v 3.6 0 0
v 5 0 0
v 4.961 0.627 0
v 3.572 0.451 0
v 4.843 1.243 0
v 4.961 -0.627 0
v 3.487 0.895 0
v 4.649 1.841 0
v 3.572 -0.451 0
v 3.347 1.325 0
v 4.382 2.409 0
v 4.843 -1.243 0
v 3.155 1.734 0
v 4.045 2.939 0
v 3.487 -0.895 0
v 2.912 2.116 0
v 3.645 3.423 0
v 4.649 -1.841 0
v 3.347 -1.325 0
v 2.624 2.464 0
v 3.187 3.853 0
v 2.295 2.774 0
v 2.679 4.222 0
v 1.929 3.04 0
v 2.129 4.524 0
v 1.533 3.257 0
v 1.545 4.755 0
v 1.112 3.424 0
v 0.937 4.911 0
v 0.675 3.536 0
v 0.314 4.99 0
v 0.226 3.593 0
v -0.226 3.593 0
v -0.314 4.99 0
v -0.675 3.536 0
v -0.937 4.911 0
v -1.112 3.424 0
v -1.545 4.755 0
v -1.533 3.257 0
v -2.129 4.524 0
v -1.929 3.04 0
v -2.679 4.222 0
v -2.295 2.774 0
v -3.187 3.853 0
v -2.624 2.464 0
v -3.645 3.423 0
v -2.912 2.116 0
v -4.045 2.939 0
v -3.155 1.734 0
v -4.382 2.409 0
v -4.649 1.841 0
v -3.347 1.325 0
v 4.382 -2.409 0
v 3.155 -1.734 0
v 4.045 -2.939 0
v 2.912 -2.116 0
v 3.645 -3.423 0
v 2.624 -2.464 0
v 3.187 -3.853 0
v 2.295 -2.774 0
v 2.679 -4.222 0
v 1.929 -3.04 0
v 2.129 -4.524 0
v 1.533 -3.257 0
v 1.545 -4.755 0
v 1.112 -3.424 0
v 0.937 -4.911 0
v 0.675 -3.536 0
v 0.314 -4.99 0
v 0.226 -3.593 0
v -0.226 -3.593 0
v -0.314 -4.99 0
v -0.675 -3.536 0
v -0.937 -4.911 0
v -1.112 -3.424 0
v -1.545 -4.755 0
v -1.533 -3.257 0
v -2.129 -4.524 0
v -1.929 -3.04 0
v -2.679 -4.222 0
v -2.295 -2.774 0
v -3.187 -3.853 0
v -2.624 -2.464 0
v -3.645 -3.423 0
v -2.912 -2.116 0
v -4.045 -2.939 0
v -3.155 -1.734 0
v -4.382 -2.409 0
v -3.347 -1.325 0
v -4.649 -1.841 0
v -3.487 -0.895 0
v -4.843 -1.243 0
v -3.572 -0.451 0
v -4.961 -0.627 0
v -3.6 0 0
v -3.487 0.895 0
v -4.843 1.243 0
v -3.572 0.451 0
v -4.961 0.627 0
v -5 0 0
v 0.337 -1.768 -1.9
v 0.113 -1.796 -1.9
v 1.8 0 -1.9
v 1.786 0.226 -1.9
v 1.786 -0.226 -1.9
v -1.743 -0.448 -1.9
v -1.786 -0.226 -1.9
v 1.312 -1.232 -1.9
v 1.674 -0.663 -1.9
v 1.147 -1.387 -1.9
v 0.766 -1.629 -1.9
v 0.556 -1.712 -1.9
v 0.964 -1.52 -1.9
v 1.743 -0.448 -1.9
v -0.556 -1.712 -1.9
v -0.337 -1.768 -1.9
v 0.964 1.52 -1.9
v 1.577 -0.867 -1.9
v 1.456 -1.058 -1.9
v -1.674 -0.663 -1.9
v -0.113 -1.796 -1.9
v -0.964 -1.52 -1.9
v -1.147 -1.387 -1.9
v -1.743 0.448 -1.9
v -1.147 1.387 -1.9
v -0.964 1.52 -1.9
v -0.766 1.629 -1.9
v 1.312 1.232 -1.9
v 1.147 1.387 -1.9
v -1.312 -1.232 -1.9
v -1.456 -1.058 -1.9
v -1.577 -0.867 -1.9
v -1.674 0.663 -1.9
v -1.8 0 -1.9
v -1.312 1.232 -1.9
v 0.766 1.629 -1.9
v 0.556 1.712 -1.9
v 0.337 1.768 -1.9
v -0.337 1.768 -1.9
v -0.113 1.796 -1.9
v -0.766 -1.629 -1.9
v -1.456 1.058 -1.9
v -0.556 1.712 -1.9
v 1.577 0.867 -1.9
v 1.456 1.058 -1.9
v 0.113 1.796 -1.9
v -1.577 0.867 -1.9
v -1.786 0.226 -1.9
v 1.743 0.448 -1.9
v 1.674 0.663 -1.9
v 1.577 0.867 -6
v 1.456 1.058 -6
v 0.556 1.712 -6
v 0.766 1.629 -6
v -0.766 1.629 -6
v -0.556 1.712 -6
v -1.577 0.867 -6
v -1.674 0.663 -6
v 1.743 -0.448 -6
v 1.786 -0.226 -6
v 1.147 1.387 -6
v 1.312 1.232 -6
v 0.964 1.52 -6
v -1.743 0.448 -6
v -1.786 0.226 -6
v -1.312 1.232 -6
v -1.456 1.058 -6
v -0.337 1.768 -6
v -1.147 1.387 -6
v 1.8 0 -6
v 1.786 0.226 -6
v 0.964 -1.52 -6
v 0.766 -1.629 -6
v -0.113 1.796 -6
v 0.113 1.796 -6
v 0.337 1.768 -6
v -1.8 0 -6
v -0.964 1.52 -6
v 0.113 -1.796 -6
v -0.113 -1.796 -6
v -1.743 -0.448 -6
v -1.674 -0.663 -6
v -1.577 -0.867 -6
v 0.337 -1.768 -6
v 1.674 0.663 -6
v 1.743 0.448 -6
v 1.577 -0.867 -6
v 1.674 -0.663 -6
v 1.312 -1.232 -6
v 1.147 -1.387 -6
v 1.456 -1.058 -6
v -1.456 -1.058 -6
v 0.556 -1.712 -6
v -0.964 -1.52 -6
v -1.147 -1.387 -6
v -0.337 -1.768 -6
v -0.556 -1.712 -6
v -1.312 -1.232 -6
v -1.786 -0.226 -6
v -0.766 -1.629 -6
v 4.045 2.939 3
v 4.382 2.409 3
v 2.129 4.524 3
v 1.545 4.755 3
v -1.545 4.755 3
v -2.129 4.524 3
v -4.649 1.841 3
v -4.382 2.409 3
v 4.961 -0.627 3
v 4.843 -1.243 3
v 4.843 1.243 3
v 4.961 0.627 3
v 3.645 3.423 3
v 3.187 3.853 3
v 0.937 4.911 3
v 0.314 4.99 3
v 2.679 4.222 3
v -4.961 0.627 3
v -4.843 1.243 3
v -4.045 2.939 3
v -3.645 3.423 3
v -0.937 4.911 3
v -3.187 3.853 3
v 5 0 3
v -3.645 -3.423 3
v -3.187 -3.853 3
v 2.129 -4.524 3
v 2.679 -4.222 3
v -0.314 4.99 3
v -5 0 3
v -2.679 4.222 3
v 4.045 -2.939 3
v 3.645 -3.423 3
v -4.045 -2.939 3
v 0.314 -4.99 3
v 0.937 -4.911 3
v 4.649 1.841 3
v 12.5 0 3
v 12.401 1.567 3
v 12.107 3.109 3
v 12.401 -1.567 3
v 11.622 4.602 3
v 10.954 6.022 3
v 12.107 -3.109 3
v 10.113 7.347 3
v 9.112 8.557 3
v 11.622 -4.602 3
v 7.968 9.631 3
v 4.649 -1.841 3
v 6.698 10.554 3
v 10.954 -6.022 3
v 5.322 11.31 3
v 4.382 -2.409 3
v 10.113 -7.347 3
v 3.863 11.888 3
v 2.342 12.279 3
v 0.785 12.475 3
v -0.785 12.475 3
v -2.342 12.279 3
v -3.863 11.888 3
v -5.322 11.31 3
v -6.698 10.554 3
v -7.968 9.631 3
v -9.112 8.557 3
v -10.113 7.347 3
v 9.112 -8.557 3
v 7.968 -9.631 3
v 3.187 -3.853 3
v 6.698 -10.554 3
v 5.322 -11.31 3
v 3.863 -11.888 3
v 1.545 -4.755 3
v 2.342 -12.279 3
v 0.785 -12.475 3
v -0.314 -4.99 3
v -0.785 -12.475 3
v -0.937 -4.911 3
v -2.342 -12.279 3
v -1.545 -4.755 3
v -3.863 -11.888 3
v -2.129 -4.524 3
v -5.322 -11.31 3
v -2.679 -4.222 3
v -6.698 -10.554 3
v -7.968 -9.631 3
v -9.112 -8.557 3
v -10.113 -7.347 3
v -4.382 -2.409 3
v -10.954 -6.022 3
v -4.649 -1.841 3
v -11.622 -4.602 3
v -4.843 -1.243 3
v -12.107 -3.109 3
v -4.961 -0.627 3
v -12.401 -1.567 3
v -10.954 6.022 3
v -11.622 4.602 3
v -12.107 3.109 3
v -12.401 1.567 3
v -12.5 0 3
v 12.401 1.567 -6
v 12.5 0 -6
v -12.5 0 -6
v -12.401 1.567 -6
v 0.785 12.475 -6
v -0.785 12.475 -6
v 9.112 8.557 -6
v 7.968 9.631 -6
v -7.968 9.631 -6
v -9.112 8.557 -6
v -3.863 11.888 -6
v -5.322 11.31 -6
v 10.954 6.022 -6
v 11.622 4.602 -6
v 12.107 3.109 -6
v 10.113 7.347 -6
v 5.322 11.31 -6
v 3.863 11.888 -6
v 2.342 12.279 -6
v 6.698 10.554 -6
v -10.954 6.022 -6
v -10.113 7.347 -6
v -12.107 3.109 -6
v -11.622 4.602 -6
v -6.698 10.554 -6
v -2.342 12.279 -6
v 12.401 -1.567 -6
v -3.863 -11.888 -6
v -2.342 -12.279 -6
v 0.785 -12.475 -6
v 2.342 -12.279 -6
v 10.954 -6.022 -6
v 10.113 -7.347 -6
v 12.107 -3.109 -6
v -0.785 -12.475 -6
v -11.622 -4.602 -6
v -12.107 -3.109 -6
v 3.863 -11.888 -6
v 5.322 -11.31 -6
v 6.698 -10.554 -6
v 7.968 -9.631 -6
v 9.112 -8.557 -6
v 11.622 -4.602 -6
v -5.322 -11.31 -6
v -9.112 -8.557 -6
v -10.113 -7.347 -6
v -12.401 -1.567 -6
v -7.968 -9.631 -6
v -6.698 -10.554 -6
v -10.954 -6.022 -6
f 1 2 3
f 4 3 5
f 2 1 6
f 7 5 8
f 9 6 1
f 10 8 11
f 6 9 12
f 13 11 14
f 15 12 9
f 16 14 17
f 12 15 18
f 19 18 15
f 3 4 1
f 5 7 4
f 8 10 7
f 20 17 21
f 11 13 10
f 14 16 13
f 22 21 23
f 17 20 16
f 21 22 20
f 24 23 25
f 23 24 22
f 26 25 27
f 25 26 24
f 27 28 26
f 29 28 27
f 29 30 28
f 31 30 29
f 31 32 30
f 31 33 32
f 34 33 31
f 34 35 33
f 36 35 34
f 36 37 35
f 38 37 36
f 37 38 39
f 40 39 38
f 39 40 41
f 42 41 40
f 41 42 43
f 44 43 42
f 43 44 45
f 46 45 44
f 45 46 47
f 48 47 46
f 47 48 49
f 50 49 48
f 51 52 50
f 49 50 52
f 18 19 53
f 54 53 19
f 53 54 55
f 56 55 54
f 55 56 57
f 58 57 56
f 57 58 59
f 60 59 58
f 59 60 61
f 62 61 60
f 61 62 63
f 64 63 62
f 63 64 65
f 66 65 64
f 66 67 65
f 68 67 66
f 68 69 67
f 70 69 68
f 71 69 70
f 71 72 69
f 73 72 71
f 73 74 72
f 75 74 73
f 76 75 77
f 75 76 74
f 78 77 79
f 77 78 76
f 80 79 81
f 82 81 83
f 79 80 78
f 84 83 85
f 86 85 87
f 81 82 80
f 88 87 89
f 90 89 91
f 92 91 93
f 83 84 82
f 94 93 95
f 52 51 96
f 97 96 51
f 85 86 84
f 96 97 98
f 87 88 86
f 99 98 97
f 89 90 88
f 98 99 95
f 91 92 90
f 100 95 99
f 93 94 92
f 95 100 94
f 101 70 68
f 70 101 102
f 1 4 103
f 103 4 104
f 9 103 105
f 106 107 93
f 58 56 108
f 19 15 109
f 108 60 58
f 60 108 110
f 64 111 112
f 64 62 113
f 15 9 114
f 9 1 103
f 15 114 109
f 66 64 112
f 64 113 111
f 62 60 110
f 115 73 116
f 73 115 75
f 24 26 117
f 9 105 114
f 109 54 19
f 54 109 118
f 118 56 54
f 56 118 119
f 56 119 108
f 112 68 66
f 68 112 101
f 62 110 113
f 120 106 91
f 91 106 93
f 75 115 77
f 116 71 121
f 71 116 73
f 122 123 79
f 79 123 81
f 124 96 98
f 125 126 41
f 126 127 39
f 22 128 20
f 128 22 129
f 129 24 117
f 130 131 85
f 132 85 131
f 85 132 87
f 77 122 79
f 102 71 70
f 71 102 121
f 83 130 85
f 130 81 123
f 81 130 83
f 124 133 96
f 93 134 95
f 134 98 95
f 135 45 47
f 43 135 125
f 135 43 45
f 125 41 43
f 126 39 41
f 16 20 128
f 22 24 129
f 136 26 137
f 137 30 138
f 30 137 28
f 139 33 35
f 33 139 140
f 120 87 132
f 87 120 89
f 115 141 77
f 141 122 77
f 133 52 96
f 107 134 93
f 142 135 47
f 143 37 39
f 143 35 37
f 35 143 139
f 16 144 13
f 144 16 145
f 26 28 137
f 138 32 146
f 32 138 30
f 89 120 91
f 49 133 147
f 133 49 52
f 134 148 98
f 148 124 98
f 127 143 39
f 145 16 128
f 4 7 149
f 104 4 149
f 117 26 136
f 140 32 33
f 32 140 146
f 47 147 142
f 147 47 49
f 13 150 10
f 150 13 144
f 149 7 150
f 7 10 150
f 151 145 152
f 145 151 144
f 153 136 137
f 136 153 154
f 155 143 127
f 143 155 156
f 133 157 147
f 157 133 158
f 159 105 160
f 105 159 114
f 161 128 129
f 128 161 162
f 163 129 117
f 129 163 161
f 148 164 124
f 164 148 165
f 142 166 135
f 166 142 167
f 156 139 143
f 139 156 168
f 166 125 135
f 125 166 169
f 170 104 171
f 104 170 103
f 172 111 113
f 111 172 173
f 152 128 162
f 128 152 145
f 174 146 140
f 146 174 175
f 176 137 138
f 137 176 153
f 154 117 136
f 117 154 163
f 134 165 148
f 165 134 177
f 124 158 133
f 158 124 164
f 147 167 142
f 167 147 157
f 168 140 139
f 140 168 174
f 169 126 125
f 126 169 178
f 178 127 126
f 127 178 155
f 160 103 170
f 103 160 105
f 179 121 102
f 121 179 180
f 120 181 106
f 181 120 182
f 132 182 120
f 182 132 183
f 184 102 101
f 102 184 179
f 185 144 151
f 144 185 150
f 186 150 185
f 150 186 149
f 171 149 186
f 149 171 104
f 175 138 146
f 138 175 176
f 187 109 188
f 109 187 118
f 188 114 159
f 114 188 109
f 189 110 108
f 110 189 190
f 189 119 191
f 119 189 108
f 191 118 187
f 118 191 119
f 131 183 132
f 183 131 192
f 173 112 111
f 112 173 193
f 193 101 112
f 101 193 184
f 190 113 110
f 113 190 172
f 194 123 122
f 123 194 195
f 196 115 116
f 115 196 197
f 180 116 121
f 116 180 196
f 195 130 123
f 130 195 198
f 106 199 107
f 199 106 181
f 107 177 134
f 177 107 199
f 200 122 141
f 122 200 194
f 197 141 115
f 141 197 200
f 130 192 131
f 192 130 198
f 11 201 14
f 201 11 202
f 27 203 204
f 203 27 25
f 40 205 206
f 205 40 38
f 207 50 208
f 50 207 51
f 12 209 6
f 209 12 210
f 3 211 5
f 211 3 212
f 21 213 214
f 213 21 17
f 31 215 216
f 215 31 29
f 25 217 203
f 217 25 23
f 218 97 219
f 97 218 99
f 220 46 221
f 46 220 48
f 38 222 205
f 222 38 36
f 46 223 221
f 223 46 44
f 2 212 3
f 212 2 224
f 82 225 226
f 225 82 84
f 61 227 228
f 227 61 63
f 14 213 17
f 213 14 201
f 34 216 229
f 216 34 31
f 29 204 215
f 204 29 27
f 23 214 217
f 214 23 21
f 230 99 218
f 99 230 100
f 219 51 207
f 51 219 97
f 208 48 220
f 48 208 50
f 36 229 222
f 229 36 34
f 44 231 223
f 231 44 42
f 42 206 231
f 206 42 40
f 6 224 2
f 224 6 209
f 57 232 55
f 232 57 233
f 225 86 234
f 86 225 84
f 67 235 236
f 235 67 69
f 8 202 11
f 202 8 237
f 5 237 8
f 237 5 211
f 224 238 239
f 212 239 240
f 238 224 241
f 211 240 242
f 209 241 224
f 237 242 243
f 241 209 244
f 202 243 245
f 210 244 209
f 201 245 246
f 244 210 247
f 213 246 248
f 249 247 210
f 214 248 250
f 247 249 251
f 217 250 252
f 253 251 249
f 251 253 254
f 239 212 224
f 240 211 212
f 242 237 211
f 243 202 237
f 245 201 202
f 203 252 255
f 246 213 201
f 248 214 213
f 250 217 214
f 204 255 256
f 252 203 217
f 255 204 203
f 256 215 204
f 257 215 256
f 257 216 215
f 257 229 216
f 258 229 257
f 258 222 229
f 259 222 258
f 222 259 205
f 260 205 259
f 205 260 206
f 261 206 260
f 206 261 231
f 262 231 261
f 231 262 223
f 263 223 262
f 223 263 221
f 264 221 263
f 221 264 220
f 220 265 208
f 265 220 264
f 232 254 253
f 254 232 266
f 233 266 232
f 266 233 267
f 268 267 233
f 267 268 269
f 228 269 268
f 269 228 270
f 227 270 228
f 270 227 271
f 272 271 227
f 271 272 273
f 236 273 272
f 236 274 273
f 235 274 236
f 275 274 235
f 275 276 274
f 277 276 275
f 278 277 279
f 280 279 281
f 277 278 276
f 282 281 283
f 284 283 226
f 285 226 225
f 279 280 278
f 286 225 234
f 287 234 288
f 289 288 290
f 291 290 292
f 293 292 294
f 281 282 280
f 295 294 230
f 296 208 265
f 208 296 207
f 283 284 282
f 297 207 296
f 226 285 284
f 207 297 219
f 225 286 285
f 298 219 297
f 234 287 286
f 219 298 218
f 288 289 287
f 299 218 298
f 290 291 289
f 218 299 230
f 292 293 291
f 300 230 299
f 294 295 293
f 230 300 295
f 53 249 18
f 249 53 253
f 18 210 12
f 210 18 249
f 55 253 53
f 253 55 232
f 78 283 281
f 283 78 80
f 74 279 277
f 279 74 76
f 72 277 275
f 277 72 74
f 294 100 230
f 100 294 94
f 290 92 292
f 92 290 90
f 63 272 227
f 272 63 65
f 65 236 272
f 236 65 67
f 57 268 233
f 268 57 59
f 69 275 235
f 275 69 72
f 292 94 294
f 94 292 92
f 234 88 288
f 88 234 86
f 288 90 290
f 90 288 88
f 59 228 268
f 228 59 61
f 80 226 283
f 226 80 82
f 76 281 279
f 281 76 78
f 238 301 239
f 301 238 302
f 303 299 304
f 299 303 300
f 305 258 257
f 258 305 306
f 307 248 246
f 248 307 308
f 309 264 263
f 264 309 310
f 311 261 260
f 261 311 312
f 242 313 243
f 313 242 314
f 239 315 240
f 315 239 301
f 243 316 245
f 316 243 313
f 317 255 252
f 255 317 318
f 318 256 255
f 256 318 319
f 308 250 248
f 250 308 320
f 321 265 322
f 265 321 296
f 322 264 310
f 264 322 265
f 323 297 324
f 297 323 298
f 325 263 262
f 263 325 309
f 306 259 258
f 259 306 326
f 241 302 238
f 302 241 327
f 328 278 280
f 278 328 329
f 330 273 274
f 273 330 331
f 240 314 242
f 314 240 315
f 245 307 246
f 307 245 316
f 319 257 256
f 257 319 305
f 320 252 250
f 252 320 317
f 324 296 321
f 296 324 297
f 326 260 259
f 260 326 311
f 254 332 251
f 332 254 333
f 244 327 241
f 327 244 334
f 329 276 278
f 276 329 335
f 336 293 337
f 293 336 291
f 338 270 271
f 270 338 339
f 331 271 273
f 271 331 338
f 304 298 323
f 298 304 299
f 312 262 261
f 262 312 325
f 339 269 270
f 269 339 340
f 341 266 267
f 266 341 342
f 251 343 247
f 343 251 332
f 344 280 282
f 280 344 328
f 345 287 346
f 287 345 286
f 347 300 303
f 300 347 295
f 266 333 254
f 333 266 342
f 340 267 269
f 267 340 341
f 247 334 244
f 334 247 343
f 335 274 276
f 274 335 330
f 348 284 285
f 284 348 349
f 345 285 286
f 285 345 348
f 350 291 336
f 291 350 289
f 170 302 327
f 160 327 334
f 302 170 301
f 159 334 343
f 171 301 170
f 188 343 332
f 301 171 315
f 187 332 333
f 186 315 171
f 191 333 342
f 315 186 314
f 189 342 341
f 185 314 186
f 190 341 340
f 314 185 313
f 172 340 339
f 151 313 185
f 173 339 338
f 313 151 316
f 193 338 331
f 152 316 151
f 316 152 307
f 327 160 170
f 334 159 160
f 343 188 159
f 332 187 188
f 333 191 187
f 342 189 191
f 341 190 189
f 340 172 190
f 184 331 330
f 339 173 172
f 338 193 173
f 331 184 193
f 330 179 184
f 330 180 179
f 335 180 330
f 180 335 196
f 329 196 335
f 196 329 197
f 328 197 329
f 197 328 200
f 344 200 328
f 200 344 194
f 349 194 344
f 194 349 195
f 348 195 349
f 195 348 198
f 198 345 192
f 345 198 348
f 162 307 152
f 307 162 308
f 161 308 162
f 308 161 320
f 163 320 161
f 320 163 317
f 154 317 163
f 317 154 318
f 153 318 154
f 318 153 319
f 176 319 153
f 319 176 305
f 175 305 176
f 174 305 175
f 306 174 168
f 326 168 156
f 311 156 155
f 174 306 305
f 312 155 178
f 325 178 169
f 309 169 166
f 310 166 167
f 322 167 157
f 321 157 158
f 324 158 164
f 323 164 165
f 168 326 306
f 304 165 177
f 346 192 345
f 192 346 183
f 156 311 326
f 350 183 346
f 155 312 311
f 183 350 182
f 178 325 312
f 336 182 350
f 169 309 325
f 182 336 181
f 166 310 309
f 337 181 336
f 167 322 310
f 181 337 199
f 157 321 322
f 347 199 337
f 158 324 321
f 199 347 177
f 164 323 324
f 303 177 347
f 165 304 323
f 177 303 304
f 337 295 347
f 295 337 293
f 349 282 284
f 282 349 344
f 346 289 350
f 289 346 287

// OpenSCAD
$fn = 50;

difference() {
	union() {
		translate(v = [0, 0, -6.0]) {
			cylinder(h = 9, r = 12.5);
		}
	}
	union() {
		translate(v = [0, 0, 0]) {
			rotate(a = [0, 0, 0]) {
				difference() {
					union() {
						translate(v = [0, 0, -9.0]) {
							cylinder(h = 9, r = 1.5);
						}
						translate(v = [0, 0, -1.9]) {
							cylinder(h = 1.9, r1 = 1.8, r2 = 3.6);
						}
						translate(v = [0, 0, -9.0]) {
							cylinder(h = 9, r = 1.8);
						}
						translate(v = [0, 0, -9.0]) {
							cylinder(h = 9, r = 1.5);
						}
					}
					union();
				}
			}
		}
		#cylinder(h = 3, r = 5.0);
	}
}
